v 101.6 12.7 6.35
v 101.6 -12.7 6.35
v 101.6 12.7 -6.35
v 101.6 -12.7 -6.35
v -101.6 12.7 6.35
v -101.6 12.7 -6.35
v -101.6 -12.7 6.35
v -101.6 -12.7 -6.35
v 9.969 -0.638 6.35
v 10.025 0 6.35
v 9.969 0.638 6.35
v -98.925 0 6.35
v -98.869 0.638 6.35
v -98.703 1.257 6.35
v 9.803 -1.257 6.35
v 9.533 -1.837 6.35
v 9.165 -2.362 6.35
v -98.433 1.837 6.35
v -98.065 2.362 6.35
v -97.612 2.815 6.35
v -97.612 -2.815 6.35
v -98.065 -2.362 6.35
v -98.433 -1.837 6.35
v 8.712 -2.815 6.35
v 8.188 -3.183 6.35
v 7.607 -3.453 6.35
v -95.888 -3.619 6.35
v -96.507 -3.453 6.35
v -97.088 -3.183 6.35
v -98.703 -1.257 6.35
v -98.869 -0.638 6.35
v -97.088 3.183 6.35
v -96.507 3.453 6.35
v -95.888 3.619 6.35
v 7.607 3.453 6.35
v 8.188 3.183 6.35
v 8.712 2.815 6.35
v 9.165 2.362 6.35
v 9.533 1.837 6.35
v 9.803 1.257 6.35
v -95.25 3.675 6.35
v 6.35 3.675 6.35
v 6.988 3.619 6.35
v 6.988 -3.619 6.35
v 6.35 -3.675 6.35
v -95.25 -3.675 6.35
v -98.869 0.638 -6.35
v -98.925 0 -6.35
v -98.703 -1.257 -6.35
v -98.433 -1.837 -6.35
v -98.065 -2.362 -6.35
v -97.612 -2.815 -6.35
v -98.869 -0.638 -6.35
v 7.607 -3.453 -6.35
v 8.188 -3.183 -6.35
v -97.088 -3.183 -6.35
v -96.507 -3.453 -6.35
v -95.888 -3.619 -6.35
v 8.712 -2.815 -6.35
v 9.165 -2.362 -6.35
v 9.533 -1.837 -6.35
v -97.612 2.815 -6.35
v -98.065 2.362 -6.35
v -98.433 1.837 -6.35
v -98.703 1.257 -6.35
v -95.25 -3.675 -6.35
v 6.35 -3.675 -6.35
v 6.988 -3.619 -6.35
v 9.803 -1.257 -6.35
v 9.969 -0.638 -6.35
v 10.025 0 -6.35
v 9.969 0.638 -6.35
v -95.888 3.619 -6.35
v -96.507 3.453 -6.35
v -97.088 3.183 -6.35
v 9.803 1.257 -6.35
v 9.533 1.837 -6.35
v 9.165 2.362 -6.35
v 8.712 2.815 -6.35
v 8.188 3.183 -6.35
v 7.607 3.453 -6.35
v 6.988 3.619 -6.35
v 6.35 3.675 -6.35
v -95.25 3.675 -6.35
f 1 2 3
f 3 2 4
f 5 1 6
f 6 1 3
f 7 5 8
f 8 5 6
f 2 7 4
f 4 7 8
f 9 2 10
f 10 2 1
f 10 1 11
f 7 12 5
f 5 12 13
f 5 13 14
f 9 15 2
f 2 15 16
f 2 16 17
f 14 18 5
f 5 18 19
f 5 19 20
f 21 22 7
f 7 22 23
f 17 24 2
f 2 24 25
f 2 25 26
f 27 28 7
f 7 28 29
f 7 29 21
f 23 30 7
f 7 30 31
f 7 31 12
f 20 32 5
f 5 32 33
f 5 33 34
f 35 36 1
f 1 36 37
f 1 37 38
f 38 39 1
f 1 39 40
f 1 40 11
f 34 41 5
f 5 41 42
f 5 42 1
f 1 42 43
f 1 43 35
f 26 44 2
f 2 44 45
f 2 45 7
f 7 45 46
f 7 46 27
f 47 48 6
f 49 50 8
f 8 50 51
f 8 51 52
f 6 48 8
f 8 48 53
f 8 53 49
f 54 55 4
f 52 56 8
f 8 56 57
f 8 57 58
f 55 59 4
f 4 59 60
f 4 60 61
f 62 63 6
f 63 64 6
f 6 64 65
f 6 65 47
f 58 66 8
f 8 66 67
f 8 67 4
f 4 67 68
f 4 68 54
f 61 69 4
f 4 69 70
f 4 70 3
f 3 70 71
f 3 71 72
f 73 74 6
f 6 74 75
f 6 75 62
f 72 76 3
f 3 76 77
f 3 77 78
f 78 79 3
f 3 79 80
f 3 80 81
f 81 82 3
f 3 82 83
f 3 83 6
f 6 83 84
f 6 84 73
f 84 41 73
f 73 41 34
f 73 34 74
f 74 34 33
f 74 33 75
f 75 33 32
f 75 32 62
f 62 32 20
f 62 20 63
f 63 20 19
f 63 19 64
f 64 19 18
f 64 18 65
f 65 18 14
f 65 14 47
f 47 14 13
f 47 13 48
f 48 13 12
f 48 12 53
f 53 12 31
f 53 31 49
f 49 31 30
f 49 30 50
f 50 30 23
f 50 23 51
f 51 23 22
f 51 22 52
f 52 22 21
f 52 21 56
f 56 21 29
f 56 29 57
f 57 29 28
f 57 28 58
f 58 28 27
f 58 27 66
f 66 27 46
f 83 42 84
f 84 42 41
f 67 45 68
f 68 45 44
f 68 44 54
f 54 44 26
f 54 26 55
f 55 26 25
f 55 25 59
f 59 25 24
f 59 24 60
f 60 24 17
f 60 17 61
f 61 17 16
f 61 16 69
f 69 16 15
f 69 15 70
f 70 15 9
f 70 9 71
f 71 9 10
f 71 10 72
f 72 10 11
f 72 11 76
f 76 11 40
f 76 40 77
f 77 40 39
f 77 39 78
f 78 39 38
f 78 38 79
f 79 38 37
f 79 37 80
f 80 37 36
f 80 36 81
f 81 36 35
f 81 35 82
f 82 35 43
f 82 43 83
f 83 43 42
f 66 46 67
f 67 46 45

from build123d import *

# Parameters (mm, degrees)
SKETCH1_W               = 203.2
SKETCH1_H               = 25.4
BOSS_EXTRUDE1_DEPTH     = 6.35
CUT_EXTRUDE1_DEPTH      = 104.175287739
CUT_EXTRUDE1_DEPTH_BACK = 104.175287739


with BuildPart() as part:
    # Sketch1 → Boss-Extrude1 (new, symmetric)
    with BuildSketch(Plane.XY):
        Rectangle(SKETCH1_W, SKETCH1_H)
    extrude(amount=BOSS_EXTRUDE1_DEPTH, both=True)

    # Sketch2 → Cut-Extrude1 (cut, two sides: drawn at the far end of the back side and taken through both)
    with BuildSketch(Plane.XY.offset(6.35).offset(-CUT_EXTRUDE1_DEPTH_BACK)):
        with BuildLine():
            Line((-95.25, 3.675), (6.35, 3.675))
            ThreePointArc((6.35, 3.675), (10.025, 0), (6.35, -3.675))
            Line((6.35, -3.675), (-95.25, -3.675))
            ThreePointArc((-95.25, -3.675), (-98.925, 0), (-95.25, 3.675))
        make_face()
    extrude(amount=CUT_EXTRUDE1_DEPTH + CUT_EXTRUDE1_DEPTH_BACK, mode=Mode.SUBTRACT)


solid = part.part
